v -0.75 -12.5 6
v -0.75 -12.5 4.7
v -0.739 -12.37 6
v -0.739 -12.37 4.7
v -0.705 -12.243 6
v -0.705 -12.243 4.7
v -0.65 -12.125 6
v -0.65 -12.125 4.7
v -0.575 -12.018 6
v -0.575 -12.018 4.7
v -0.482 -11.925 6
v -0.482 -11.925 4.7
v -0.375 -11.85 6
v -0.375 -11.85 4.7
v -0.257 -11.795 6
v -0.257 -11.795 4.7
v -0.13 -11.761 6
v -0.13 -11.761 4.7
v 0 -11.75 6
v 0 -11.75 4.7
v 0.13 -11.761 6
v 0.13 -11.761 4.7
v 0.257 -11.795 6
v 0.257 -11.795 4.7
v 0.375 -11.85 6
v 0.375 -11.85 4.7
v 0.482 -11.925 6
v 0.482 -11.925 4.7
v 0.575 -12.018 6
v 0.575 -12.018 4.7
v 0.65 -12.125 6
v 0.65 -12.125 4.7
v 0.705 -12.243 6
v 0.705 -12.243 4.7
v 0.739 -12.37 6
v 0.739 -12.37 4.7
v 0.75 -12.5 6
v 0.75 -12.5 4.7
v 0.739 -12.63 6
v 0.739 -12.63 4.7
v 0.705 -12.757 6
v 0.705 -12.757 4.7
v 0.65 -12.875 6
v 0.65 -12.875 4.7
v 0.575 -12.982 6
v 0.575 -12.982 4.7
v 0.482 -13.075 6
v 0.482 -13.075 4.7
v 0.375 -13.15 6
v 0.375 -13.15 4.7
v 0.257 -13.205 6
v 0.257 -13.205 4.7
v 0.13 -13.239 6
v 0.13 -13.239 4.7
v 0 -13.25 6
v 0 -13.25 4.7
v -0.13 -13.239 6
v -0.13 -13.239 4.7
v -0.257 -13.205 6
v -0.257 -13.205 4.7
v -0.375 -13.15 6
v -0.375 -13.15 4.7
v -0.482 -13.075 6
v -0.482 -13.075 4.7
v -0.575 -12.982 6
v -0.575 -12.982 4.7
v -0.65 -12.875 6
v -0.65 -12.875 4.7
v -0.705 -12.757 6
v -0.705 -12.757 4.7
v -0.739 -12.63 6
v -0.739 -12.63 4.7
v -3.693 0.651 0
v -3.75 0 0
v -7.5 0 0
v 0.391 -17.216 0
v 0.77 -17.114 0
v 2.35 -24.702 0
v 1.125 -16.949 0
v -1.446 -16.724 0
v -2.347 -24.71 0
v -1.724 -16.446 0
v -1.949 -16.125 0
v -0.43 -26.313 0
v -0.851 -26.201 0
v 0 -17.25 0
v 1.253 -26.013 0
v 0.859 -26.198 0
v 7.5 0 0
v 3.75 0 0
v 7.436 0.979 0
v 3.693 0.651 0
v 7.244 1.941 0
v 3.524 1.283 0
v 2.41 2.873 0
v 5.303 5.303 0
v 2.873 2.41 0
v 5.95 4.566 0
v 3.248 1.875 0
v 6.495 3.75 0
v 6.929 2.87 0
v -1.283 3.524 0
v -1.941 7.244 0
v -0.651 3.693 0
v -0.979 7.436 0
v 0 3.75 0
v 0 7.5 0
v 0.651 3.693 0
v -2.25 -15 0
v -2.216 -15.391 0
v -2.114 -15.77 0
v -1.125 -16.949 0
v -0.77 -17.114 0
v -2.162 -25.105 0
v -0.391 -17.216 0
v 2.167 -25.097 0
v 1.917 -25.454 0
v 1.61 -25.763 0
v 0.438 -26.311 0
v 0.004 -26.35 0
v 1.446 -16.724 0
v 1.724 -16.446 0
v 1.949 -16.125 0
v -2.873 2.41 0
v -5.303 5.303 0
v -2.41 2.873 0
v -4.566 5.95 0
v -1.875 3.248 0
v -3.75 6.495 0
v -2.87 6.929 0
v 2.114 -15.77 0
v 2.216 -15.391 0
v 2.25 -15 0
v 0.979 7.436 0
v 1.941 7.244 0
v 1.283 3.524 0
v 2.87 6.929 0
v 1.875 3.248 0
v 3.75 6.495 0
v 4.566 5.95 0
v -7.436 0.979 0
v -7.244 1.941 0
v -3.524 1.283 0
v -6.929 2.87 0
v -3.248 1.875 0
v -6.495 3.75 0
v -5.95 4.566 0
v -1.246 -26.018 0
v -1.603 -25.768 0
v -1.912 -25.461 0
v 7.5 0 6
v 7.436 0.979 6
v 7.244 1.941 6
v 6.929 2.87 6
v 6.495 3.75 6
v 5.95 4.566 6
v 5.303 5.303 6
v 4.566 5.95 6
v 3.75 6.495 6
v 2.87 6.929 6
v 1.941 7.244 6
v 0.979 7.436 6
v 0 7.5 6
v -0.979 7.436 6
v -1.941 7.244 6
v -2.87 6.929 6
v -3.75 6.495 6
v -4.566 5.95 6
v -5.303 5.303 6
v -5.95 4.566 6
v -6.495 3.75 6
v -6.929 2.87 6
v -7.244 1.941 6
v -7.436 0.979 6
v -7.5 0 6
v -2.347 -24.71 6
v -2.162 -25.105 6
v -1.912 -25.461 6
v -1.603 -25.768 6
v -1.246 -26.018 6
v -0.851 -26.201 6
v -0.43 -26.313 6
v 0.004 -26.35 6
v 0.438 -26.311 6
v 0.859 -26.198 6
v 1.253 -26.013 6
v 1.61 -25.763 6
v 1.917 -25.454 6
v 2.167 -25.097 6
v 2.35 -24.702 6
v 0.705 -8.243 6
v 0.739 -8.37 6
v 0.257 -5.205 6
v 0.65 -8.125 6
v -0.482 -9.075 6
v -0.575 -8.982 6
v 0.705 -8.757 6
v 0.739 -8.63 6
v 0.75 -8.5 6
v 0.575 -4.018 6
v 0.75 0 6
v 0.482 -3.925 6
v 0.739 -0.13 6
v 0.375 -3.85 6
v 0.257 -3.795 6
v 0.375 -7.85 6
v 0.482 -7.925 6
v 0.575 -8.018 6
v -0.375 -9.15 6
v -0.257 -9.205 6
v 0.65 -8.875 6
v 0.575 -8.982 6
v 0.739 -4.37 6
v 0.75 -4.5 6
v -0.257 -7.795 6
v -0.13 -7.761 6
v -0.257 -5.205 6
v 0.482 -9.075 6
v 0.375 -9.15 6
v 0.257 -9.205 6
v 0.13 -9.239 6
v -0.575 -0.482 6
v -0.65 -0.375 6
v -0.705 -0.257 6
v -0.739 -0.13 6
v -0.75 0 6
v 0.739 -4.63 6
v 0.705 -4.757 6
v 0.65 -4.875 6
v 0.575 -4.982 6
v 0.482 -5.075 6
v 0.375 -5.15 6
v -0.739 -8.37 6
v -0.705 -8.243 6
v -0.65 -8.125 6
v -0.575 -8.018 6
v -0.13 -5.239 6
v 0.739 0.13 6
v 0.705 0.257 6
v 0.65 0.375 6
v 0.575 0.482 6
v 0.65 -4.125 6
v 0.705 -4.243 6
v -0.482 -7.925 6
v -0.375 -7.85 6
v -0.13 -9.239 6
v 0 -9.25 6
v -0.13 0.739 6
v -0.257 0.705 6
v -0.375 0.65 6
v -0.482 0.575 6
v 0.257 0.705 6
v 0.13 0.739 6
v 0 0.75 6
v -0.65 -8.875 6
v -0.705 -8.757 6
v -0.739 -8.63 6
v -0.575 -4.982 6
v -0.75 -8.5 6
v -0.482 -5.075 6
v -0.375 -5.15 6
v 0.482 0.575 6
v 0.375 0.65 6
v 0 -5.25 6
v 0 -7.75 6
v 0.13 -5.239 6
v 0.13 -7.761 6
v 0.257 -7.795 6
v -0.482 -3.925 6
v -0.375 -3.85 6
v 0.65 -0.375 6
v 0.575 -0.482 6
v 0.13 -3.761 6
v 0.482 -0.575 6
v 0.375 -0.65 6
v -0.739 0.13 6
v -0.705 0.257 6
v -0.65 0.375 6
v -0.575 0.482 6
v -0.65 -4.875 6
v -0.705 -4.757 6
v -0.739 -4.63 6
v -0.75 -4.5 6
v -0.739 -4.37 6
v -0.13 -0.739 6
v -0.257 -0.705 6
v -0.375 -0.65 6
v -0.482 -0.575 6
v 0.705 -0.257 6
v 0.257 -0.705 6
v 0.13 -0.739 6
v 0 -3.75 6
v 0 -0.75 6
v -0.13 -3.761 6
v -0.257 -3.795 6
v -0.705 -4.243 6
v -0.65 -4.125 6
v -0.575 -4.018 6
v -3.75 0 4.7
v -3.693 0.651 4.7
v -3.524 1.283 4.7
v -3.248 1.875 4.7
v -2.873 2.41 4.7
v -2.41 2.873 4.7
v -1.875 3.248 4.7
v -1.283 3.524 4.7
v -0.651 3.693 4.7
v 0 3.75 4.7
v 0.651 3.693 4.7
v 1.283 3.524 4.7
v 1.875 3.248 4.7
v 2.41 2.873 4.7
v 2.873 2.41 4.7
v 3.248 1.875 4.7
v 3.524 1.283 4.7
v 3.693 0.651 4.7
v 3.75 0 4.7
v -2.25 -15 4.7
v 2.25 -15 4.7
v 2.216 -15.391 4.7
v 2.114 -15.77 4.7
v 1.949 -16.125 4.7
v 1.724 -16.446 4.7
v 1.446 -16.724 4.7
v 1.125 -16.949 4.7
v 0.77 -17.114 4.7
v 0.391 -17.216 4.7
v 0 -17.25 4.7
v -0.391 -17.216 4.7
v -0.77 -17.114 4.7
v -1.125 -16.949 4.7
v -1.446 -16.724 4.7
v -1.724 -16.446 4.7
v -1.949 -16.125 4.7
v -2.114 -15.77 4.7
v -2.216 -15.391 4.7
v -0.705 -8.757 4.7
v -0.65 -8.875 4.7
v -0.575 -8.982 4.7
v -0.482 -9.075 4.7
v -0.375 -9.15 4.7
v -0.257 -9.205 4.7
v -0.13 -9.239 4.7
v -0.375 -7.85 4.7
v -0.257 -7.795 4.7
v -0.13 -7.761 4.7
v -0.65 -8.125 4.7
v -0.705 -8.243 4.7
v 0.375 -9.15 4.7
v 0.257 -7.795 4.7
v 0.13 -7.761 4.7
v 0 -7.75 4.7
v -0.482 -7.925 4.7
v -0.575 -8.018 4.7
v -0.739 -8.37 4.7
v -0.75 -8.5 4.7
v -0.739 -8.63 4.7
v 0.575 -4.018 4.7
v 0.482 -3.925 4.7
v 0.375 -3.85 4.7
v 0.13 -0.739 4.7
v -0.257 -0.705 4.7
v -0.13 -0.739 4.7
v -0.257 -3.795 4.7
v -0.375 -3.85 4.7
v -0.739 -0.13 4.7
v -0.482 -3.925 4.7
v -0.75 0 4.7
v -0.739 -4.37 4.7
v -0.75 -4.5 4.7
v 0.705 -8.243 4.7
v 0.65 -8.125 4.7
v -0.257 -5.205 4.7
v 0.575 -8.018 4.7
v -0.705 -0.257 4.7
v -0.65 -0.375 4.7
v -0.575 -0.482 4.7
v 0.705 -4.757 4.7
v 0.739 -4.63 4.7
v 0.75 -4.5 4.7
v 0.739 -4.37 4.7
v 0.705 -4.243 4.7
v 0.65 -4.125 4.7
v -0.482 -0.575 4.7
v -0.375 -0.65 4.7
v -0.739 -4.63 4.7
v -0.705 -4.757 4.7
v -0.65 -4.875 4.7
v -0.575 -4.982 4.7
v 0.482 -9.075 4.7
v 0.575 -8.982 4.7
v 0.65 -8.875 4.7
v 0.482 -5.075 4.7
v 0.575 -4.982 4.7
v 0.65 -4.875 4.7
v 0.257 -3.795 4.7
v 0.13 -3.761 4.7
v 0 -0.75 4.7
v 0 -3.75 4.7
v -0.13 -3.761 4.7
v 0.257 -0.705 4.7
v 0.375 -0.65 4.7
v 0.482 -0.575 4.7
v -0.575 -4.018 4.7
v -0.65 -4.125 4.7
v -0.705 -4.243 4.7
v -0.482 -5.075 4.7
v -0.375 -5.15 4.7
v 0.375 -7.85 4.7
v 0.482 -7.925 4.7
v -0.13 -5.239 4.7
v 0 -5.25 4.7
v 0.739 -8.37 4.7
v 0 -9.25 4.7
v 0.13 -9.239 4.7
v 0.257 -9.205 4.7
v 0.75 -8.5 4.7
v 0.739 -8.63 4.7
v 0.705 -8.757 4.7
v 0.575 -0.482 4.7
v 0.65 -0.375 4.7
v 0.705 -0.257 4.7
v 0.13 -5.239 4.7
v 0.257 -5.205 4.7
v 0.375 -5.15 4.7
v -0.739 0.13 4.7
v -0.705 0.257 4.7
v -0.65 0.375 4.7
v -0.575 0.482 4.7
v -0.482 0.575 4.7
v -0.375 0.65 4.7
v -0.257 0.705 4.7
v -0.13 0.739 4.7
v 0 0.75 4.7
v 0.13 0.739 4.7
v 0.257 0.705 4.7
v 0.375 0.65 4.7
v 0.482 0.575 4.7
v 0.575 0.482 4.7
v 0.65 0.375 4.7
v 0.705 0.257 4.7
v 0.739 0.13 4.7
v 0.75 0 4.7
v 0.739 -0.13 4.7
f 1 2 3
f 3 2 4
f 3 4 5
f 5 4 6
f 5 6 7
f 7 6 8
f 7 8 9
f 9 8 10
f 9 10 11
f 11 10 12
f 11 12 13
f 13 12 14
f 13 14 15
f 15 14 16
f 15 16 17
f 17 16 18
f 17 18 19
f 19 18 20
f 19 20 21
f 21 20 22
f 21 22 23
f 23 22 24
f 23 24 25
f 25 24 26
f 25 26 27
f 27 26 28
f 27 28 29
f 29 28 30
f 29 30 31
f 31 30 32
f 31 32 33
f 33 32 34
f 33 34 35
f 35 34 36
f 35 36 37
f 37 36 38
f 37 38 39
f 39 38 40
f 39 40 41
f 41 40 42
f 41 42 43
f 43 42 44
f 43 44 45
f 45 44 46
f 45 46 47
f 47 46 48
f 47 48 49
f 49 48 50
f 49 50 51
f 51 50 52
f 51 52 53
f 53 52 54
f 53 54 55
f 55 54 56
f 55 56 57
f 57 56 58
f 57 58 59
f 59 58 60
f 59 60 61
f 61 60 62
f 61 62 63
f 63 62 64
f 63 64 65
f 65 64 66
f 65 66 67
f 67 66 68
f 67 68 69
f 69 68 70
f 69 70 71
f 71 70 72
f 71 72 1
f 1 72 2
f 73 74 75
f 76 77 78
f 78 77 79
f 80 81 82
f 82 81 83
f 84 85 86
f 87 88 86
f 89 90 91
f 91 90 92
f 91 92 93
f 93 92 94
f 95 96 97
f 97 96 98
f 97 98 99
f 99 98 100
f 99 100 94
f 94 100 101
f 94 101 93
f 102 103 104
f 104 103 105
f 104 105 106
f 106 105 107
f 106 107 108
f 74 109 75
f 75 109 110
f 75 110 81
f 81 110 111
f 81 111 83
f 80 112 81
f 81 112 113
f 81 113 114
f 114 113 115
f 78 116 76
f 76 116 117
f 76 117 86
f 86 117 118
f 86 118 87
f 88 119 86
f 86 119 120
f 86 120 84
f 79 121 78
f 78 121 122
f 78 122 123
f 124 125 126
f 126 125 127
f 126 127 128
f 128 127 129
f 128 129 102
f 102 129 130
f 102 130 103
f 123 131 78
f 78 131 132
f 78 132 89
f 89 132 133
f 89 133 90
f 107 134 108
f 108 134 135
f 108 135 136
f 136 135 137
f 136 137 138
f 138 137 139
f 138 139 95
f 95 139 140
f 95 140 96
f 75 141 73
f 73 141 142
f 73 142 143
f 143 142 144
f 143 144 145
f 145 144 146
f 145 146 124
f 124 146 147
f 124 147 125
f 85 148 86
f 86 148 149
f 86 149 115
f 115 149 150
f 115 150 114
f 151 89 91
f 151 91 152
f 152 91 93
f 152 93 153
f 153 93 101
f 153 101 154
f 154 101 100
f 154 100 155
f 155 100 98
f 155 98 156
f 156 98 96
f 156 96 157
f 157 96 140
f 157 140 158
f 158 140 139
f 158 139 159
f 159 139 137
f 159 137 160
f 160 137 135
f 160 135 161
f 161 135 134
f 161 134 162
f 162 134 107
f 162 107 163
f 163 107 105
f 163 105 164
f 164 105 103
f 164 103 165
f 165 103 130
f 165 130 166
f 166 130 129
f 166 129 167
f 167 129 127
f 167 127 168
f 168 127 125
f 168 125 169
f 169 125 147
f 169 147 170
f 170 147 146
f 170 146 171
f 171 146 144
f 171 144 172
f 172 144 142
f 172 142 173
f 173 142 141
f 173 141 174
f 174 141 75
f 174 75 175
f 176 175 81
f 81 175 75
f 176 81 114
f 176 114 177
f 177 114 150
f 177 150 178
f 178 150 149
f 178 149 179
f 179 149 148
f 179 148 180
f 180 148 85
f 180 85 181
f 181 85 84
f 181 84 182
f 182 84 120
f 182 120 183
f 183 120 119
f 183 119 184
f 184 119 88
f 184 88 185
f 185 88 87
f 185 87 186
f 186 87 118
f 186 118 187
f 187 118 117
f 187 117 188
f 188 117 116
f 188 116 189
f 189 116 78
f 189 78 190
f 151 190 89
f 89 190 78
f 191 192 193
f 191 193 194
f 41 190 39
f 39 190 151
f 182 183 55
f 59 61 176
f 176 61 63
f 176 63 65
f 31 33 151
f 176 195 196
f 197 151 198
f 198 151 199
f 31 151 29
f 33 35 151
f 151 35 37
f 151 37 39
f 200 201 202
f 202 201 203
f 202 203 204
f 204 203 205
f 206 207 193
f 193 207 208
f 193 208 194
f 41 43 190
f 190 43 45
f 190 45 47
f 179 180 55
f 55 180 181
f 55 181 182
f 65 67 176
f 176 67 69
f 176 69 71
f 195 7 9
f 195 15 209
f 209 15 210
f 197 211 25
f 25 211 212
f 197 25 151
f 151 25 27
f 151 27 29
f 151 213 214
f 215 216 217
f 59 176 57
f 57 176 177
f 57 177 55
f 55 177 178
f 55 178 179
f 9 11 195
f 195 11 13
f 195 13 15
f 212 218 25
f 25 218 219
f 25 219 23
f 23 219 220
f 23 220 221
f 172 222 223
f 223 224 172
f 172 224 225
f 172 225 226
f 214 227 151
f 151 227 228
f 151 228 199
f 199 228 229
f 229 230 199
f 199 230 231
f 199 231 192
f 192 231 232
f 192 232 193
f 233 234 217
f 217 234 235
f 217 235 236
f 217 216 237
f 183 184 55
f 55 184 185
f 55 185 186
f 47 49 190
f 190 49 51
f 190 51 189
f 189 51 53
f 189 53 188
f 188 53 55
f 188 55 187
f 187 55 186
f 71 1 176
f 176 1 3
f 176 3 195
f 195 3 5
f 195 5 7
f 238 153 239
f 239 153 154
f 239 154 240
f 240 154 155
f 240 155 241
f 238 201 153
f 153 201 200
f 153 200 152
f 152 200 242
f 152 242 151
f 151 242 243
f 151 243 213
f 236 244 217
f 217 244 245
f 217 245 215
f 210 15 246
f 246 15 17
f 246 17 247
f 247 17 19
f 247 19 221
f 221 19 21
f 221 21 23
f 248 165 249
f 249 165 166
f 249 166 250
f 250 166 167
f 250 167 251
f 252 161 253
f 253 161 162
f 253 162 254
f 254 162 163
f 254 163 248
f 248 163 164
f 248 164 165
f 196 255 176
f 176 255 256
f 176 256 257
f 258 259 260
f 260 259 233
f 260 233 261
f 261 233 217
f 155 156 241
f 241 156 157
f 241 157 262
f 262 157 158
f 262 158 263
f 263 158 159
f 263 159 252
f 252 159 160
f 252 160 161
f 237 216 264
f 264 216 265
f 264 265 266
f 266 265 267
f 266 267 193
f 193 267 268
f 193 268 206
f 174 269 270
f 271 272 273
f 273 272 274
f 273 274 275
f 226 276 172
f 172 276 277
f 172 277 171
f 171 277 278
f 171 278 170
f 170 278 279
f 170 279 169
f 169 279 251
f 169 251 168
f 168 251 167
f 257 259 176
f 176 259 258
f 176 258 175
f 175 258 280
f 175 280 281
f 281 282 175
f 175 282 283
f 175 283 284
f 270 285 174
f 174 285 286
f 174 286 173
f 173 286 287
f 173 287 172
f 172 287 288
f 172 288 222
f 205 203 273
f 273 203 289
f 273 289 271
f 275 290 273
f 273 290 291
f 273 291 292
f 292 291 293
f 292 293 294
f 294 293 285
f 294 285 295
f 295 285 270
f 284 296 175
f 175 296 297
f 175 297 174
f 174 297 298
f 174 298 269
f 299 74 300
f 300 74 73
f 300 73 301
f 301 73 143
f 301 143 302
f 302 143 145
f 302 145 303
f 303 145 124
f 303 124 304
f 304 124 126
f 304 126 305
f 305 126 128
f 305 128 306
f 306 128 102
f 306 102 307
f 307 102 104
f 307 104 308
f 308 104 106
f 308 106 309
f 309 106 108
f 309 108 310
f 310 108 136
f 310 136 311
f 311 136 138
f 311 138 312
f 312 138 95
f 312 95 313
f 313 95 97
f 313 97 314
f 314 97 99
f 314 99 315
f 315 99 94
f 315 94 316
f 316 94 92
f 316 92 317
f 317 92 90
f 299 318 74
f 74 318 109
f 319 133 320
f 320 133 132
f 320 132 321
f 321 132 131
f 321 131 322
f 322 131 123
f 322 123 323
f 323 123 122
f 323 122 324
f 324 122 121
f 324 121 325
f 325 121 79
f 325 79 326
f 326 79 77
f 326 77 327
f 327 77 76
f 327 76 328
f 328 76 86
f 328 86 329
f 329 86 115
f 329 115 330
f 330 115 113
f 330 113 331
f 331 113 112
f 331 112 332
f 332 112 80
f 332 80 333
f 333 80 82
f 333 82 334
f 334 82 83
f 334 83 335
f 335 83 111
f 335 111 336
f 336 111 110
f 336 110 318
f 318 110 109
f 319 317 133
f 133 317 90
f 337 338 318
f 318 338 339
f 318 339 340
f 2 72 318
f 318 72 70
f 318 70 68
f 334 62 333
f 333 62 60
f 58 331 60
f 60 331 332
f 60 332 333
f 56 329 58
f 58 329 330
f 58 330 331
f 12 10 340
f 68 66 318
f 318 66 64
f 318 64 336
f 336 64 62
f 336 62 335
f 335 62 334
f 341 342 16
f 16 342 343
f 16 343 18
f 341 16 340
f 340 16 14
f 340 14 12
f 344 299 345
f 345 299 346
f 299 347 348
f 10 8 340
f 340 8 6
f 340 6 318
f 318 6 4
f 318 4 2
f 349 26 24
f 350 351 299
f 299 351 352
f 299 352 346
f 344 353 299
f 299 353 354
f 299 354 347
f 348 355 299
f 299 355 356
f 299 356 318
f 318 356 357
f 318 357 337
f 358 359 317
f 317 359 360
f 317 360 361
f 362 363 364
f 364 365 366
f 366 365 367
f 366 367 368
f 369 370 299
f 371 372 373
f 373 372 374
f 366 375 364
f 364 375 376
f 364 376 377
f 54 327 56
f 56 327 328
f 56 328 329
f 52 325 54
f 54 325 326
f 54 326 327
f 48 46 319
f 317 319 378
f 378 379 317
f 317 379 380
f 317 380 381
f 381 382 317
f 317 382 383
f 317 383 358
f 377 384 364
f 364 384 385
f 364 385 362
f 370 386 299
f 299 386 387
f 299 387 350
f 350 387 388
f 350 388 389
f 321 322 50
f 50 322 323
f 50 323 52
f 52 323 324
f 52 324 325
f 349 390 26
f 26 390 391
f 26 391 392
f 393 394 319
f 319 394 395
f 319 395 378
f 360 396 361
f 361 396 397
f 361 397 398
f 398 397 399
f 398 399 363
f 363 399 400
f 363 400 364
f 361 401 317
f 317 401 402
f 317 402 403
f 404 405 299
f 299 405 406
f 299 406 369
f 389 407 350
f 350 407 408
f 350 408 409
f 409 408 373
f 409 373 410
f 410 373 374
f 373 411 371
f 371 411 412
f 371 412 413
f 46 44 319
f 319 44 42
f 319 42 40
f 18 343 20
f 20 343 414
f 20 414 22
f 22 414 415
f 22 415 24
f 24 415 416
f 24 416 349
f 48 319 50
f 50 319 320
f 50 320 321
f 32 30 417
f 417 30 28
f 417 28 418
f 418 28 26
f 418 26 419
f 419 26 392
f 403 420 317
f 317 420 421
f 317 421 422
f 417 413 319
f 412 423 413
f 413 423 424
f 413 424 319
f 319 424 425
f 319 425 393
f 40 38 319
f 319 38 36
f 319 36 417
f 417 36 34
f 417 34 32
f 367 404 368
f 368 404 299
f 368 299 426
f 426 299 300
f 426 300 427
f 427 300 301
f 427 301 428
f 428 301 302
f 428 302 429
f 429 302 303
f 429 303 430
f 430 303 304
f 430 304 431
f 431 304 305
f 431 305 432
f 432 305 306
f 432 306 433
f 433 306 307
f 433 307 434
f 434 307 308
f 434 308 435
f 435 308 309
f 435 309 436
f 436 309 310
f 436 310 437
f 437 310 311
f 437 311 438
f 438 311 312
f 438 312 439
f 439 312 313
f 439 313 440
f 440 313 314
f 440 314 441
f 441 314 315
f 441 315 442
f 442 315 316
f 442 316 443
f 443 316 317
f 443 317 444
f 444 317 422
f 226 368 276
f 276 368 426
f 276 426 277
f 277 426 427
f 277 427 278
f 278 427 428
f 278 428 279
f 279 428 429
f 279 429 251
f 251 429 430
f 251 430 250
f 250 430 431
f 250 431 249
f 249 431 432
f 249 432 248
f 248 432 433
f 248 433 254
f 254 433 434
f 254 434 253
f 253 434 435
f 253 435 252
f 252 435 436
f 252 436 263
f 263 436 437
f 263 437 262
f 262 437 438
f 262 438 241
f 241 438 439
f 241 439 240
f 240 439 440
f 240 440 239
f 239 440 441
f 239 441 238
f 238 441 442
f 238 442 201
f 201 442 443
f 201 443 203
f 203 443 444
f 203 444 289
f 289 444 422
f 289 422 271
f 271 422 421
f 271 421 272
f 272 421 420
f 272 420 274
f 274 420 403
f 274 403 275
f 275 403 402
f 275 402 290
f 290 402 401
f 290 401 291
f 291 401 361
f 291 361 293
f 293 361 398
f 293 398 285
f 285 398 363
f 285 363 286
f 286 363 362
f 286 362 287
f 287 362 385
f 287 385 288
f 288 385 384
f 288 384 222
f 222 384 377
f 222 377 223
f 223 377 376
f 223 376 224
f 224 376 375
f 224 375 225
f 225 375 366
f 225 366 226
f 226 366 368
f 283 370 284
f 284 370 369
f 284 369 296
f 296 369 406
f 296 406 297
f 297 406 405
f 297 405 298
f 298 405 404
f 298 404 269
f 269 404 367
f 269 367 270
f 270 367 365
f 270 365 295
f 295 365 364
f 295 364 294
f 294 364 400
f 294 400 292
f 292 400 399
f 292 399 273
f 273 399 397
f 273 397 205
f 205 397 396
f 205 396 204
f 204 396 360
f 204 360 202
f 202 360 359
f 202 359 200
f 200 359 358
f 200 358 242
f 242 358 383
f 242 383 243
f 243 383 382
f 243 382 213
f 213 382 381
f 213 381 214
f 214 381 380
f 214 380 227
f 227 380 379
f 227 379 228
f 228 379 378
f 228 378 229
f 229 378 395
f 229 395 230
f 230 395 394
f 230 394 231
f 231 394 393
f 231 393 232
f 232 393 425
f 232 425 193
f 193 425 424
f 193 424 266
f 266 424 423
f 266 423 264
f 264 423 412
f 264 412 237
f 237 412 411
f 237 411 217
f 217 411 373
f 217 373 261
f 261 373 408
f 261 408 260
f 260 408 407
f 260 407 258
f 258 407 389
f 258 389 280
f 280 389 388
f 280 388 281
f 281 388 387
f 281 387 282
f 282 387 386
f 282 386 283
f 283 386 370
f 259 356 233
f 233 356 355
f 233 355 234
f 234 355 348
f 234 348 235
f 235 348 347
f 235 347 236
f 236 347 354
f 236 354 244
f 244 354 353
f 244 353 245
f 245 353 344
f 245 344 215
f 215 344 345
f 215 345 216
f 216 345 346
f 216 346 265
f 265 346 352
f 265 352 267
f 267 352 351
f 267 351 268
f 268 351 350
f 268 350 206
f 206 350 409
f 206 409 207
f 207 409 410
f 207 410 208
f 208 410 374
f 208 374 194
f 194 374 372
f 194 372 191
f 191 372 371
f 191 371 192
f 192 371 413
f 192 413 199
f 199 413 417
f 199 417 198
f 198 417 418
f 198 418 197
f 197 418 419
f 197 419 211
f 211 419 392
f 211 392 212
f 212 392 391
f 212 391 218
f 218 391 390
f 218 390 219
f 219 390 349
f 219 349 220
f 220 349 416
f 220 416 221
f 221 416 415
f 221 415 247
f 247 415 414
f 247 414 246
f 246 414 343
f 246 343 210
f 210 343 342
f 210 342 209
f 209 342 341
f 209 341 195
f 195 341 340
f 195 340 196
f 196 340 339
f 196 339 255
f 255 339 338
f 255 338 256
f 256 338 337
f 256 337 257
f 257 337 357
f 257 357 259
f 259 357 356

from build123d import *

# Parameters (mm, degrees)
BOSS_EXTRUDE1_DEPTH     = 6
CUT_EXTRUDE3_DEPTH      = 4.7
CUT_EXTRUDE4_DEPTH      = 28.796807371
CUT_EXTRUDE4_DEPTH_BACK = 28.796807371
SKETCH4_R               = 0.75
SKETCH6_R               = 0.75
CUT_EXTRUDE6_DEPTH      = 28.796807371
LPATTERN1_COUNT         = 3
LPATTERN1_PITCH         = 4


with BuildPart() as part:
    # Sketch2 → Boss-Extrude1 (new body)
    with BuildSketch(Plane.XY):
        with BuildLine():
            Line((-7.5, 0), (-2.347339189, -24.710231791))
            ThreePointArc((-2.347339189, -24.710231791), (0.004409749, -26.349996111), (2.350359302, -24.70194551))
            Line((2.350359302, -24.70194551), (7.5, 0))
            ThreePointArc((7.5, 0), (0, 7.5), (-7.5, 0))
        make_face()
    extrude(amount=BOSS_EXTRUDE1_DEPTH)

    # Sketch3 → Cut-Extrude3 (cut)
    with BuildSketch(Plane.XY):
        with BuildLine():
            Line((-3.75, 0), (-2.25, -15))
            ThreePointArc((-2.25, -15), (0, -17.25), (2.25, -15))
            Line((2.25, -15), (3.75, 0))
            ThreePointArc((3.75, 0), (0, 3.75), (-3.75, 0))
        make_face()
    extrude(amount=CUT_EXTRUDE3_DEPTH, mode=Mode.SUBTRACT)

    # Sketch4 → Cut-Extrude4 (cut, two sides: drawn at the far end of the back side and taken through both)
    with BuildSketch(Plane(origin=(0, 0, 4.7), x_dir=(-1, 0, 0), z_dir=(0, 0, -1)).offset(-CUT_EXTRUDE4_DEPTH_BACK)):
        Circle(SKETCH4_R)
    extrude(amount=CUT_EXTRUDE4_DEPTH + CUT_EXTRUDE4_DEPTH_BACK, mode=Mode.SUBTRACT)

    # Sketch6 → Cut-Extrude6 (cut, symmetric)
    with BuildSketch(Plane(origin=(0, 0, 4.7), x_dir=(-1, 0, 0), z_dir=(0, 0, -1))):
        with Locations((0, -4.5)):
            Circle(SKETCH6_R)
    cut_extrude6 = extrude(amount=CUT_EXTRUDE6_DEPTH, both=True, mode=Mode.SUBTRACT)

    # LPattern1: Cut-Extrude6 ×3
    with Locations(*[(0, -i * LPATTERN1_PITCH, 0) for i in range(1, LPATTERN1_COUNT)]):
        add(cut_extrude6, mode=Mode.SUBTRACT)


solid = part.part
